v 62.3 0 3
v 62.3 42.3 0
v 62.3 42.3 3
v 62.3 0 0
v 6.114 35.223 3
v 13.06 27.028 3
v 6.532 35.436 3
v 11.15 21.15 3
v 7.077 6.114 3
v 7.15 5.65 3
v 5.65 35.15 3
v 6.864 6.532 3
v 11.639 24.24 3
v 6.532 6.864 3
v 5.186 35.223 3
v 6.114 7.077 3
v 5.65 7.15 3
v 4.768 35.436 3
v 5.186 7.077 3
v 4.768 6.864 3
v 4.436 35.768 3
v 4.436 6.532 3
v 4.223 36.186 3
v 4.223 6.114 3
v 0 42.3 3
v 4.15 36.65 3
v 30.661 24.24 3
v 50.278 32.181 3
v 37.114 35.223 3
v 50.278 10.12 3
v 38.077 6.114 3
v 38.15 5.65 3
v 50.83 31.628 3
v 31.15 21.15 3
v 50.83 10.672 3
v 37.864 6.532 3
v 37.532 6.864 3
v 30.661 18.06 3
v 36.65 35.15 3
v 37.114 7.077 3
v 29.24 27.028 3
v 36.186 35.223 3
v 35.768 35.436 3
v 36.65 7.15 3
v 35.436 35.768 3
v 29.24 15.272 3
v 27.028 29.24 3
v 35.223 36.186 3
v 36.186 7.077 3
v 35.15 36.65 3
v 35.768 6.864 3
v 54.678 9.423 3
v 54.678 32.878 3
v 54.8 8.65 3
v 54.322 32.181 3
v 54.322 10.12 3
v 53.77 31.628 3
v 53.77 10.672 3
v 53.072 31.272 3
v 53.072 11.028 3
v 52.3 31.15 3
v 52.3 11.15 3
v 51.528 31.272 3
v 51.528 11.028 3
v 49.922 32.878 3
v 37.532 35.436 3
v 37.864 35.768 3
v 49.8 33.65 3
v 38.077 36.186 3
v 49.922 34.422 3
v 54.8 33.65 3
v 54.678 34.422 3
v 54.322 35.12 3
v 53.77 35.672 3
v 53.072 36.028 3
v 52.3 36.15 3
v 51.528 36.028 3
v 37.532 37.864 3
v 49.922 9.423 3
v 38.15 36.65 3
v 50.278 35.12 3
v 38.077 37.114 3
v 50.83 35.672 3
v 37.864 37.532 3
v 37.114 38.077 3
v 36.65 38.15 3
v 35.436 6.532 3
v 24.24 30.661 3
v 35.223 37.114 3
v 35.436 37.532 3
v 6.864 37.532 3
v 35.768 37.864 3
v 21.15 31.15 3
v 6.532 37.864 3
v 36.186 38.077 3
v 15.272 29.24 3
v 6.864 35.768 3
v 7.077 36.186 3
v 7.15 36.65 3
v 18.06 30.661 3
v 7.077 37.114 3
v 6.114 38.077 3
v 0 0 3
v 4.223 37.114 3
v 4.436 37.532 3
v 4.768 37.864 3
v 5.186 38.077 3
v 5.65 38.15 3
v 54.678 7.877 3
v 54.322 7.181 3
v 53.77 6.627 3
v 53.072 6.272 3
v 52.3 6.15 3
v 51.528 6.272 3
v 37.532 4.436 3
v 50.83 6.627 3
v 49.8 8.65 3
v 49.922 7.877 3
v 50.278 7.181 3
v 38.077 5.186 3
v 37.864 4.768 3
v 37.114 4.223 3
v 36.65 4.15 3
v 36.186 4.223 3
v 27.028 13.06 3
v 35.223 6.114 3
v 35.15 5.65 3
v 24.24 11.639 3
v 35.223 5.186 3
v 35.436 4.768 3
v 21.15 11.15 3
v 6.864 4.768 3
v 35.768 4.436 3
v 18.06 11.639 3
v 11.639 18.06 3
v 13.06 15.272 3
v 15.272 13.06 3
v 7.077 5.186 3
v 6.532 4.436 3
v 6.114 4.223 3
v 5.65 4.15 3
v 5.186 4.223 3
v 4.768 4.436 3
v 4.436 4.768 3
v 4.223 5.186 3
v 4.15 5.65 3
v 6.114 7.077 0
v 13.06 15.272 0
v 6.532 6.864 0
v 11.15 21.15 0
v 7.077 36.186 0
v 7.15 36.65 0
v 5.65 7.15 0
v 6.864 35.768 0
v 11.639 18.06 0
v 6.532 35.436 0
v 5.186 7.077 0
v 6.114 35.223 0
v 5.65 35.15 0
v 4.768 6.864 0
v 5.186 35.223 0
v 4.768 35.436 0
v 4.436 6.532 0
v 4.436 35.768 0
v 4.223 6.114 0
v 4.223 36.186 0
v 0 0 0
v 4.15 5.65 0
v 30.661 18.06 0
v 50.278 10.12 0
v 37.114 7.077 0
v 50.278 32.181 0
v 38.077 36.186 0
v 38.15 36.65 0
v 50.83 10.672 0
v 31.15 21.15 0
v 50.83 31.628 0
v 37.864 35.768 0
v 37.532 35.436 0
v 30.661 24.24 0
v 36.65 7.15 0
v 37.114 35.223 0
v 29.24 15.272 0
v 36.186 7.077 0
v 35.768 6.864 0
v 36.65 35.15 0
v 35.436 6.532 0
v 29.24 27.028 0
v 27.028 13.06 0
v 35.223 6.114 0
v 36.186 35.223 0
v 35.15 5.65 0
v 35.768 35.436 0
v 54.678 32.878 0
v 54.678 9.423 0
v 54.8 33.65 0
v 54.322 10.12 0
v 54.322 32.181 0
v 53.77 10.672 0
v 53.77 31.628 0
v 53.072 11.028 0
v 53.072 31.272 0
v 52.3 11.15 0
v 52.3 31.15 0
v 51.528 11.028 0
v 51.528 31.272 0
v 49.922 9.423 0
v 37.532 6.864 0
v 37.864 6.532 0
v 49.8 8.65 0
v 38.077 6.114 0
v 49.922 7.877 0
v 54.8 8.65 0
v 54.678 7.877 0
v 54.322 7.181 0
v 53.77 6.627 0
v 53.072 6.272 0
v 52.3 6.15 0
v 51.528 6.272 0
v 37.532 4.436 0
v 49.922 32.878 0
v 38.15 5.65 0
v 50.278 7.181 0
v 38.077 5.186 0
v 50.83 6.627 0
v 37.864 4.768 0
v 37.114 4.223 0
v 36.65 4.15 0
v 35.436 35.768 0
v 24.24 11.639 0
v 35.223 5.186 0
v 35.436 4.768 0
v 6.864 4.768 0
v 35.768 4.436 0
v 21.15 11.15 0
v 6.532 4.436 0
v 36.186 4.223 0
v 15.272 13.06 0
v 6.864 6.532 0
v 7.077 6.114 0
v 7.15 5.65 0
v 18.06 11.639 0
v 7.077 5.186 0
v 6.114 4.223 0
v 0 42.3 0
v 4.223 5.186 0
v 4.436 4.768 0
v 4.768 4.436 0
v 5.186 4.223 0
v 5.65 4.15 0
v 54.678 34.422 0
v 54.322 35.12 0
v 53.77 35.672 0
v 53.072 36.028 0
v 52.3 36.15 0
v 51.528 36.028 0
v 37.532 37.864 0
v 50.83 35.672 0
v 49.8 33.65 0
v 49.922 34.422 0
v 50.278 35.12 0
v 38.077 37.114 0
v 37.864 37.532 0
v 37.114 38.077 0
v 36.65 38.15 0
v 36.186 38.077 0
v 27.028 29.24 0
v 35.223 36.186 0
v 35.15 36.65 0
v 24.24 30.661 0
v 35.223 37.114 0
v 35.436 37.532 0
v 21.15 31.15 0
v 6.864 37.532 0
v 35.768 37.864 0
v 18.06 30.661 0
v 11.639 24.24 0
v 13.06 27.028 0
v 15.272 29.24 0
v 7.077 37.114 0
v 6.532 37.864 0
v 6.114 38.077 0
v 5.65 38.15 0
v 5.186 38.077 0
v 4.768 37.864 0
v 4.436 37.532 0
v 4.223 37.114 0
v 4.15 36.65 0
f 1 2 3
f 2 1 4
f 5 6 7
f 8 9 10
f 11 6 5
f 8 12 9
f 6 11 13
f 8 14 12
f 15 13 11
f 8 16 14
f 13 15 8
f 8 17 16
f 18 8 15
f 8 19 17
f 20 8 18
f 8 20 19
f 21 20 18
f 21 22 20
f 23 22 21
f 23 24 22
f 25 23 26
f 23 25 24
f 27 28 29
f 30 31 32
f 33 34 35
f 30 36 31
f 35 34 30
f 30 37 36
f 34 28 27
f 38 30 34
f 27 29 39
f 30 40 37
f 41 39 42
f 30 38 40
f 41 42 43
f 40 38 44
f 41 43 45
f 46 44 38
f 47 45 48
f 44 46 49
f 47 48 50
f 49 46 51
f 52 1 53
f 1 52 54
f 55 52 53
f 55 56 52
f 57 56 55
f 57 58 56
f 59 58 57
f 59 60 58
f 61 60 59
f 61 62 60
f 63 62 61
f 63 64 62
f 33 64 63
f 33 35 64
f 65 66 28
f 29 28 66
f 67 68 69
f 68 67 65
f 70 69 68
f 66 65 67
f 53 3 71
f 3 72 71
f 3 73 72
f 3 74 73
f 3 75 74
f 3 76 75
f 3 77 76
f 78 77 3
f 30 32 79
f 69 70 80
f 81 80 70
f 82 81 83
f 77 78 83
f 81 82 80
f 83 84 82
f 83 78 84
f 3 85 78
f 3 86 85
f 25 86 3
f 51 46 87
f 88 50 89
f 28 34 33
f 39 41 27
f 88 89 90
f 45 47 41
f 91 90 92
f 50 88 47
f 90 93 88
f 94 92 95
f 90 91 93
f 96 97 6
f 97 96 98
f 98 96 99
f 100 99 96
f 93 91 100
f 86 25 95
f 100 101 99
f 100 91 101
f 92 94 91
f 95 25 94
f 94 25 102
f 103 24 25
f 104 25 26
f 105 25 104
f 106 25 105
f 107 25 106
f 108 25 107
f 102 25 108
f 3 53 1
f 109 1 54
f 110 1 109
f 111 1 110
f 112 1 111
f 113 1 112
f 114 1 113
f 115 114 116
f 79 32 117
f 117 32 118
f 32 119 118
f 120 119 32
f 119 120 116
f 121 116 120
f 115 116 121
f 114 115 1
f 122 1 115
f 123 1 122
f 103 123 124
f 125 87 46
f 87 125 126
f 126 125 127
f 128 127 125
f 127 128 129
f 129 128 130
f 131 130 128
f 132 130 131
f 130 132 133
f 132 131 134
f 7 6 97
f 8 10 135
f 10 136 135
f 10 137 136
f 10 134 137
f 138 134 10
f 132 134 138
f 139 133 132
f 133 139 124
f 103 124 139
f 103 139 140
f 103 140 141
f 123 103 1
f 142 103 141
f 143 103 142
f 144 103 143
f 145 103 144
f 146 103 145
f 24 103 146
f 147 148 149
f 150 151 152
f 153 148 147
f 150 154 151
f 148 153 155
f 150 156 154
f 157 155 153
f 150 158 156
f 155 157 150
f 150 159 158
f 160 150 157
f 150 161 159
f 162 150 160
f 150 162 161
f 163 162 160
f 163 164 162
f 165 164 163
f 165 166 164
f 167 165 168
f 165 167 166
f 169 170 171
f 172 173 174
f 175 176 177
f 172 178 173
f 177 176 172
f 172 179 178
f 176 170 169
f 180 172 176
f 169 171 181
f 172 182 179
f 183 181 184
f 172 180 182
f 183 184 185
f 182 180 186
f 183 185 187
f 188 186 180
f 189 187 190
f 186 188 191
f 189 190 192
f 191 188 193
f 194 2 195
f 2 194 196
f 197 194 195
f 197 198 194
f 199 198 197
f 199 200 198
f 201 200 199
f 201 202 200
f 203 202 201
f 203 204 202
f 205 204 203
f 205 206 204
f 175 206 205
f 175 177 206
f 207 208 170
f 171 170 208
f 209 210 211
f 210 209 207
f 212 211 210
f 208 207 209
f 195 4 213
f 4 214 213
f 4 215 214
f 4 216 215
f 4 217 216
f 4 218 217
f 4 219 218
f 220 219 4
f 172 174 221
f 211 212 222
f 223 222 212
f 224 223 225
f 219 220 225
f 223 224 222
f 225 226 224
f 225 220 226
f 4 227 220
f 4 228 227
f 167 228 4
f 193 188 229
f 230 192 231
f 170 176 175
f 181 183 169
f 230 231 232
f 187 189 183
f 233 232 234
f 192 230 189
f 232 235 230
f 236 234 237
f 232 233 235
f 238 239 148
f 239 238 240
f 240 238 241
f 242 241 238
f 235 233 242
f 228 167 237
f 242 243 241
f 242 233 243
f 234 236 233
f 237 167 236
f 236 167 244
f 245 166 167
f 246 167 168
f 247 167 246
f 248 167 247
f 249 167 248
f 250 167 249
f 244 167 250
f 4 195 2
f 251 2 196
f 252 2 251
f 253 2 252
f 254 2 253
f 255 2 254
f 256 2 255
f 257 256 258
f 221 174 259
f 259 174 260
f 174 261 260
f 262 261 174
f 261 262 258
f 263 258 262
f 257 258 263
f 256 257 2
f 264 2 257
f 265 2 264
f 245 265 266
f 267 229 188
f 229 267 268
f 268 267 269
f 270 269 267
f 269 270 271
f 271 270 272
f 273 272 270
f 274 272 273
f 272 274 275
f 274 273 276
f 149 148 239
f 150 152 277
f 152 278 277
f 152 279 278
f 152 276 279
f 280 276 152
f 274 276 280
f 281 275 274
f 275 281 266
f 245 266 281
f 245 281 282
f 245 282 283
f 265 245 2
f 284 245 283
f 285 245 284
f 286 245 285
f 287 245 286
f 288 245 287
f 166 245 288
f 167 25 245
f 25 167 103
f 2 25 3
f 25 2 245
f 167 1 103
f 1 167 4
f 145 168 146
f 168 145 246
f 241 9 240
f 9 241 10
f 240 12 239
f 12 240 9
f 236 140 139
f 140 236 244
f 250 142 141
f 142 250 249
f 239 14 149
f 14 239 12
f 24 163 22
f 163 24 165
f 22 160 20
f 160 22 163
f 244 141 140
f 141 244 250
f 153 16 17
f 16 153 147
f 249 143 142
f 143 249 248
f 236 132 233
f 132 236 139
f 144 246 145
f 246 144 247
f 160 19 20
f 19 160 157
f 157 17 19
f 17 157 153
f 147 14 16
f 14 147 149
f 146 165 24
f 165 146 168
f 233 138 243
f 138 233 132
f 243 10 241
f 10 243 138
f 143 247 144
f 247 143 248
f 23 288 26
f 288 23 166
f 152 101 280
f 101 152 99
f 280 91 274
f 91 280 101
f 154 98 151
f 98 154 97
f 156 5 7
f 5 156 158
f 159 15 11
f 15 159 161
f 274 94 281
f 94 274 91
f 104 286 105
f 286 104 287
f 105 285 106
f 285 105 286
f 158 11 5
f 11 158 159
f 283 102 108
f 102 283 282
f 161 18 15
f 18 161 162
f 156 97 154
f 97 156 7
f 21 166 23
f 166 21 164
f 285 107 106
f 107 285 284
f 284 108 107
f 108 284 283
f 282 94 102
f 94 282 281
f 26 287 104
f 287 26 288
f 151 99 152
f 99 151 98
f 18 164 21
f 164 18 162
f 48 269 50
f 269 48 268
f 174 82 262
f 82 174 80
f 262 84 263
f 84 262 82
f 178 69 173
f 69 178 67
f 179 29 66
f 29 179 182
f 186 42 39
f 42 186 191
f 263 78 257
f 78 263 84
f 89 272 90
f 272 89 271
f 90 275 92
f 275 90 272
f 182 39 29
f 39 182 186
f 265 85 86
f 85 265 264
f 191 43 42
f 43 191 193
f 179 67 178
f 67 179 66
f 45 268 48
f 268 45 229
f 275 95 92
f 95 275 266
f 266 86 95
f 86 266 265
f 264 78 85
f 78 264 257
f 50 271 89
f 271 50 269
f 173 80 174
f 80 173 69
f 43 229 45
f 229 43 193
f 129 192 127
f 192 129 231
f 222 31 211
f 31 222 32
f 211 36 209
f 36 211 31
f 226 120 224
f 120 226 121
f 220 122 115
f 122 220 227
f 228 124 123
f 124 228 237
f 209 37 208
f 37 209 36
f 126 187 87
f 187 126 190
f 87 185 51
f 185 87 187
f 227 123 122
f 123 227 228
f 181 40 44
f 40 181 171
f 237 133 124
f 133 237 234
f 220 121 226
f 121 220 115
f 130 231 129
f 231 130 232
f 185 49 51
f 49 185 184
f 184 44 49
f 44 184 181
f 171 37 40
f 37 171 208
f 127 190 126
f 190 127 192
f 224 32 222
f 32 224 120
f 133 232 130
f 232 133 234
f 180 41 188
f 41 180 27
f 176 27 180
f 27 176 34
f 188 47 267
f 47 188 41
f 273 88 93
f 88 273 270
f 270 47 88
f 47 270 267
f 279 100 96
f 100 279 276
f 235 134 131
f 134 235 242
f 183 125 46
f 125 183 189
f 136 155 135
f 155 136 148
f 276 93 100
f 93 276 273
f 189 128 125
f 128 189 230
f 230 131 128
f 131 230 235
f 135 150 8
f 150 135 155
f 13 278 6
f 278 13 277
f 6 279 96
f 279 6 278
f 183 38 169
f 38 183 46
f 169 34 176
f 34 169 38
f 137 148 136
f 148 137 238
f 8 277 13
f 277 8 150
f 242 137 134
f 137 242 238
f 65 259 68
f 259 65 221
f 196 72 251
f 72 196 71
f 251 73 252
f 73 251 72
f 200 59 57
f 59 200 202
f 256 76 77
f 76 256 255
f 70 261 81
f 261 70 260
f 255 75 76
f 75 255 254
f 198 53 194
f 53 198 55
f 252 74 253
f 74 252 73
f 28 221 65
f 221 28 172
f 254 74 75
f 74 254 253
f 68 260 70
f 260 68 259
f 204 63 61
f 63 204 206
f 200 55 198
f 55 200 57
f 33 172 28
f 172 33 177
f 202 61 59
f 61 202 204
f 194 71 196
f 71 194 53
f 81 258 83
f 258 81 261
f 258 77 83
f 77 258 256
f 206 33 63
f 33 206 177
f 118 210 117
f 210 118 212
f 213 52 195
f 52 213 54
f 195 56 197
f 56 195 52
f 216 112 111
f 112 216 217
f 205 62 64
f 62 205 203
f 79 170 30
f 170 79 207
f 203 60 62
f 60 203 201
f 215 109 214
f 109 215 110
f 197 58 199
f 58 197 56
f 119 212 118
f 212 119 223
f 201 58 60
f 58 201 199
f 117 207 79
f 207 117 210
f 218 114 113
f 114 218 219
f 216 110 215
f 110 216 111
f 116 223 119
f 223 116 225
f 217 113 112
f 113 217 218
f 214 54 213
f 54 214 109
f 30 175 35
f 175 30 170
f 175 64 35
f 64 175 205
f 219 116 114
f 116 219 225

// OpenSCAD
$fn=20;
motor_dim=42.3;
hole_sep=31;
hole_sep2=25;
difference(){
cube([motor_dim+20,motor_dim,3]);
translate([(motor_dim-hole_sep)/2,(motor_dim-hole_sep)/2])cylinder(r=1.5,h=10);   
   translate([(motor_dim-hole_sep)/2,(motor_dim+hole_sep)/2])cylinder(r=1.5,h=10);     
     translate([(motor_dim+hole_sep)/2,(motor_dim+hole_sep)/2])cylinder(r=1.5,h=10);   
     translate([(motor_dim+hole_sep)/2,(motor_dim-hole_sep)/2])cylinder(r=1.5,h=10);   
    translate([(motor_dim)/2,(motor_dim)/2])cylinder(r=10,h=10);
    translate([motor_dim+10,(motor_dim+hole_sep2)/2,])cylinder(r=2.5,h=10);   
    translate([motor_dim+10,(motor_dim-hole_sep2)/2,])cylinder(r=2.5,h=10);   
}
